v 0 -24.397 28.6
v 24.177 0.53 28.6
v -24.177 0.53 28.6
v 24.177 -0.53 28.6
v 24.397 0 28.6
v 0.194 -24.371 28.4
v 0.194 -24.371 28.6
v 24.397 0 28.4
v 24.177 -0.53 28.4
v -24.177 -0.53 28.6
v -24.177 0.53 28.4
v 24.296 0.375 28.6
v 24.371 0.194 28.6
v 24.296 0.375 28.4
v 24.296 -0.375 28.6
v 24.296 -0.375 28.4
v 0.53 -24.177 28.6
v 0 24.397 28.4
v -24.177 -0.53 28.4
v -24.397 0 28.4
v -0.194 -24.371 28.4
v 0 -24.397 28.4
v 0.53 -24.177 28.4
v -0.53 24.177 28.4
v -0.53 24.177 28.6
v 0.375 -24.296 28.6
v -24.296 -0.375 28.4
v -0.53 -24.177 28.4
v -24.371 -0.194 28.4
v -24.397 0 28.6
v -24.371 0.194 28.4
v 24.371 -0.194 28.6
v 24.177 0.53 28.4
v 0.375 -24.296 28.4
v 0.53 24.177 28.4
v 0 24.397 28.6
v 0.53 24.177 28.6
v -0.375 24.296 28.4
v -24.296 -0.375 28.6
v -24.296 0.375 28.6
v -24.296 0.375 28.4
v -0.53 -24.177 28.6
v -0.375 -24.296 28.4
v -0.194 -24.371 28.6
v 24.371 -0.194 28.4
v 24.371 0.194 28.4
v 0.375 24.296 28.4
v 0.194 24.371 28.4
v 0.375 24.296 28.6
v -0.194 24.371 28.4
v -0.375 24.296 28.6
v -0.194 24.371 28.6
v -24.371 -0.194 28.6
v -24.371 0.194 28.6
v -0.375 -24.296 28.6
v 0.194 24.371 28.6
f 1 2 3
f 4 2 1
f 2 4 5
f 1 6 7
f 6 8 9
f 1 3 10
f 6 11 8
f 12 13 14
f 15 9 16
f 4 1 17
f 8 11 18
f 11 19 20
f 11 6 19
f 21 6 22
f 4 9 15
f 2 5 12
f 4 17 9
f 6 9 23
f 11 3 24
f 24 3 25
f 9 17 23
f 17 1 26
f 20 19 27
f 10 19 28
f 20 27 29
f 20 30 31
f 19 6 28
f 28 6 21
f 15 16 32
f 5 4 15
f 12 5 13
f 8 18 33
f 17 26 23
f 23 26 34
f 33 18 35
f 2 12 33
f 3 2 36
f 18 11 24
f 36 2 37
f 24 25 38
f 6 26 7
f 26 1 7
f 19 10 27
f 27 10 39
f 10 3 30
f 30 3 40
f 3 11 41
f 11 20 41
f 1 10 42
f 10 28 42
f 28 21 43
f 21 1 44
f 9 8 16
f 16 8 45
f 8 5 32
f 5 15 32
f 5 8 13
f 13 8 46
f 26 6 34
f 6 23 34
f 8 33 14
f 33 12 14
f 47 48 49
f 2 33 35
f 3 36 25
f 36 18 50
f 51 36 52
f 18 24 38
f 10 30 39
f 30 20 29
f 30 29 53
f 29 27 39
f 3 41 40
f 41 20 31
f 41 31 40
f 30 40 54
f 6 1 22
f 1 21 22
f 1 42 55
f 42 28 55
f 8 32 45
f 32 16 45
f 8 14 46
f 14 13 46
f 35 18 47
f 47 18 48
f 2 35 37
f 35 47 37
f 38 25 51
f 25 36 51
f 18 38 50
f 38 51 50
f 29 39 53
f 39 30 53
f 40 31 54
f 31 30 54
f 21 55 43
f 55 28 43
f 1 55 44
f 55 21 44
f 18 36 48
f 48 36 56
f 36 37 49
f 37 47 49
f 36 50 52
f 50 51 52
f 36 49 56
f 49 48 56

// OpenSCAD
// file: def.scad
total_size = 57;

round_radius = 1;
sticker_margin = 2.5;
sticker_round_radius = 0.75;
inf = total_size * 10;

theta = atan(sqrt(2));

cut1_rot = [-theta, 0, -45];
sticker_dif_cut1_dis = total_size / 2 / tan(theta) - round_radius / tan(theta / 2) + round_radius - sticker_margin;
sticker_int_cut1_dis = total_size / 2 / tan(theta) + round_radius * tan(theta / 2) - round_radius + sticker_margin;

module _cube() {
    cube([total_size - round_radius * 2, total_size - round_radius * 2, total_size - round_radius * 2], center = true);
}

module _cut1() {
    translate([-inf, -inf, 0])
        cube([inf * 2, inf * 2, inf]);
}

module _int_cut1() {
    translate([-inf, -inf, round_radius])
        cube([inf * 2, inf * 2, inf]);
}

module _sticker_int_cut1() {
    rotate([-90, 0, 0])
        translate([-inf, -inf, sticker_int_cut1_dis])
            cube([inf * 2, inf * 2, inf]);
}

module _sticker_dif_cut1() {
    rotate([-90, 0, 0])
        translate([-inf, -inf, sticker_dif_cut1_dis])
            cube([inf * 2, inf * 2, inf]);
}

module _sticker_base() {
    translate([0, 0, total_size / 2])
        cube([total_size - sticker_margin * 2, total_size - sticker_margin * 2, 0.1], center = true);
}
// main file
include <def.scad>

module center_sticker() {
    minkowski() {
        difference() {
            _sticker_base();
            for (deg = [45 : 90 : 315])
                rotate([0, 0, deg])
                    _sticker_dif_cut1();
        }
        cylinder(r = sticker_round_radius, h = 0.1, center = true, $fn = 24);
    }
}

center_sticker();
